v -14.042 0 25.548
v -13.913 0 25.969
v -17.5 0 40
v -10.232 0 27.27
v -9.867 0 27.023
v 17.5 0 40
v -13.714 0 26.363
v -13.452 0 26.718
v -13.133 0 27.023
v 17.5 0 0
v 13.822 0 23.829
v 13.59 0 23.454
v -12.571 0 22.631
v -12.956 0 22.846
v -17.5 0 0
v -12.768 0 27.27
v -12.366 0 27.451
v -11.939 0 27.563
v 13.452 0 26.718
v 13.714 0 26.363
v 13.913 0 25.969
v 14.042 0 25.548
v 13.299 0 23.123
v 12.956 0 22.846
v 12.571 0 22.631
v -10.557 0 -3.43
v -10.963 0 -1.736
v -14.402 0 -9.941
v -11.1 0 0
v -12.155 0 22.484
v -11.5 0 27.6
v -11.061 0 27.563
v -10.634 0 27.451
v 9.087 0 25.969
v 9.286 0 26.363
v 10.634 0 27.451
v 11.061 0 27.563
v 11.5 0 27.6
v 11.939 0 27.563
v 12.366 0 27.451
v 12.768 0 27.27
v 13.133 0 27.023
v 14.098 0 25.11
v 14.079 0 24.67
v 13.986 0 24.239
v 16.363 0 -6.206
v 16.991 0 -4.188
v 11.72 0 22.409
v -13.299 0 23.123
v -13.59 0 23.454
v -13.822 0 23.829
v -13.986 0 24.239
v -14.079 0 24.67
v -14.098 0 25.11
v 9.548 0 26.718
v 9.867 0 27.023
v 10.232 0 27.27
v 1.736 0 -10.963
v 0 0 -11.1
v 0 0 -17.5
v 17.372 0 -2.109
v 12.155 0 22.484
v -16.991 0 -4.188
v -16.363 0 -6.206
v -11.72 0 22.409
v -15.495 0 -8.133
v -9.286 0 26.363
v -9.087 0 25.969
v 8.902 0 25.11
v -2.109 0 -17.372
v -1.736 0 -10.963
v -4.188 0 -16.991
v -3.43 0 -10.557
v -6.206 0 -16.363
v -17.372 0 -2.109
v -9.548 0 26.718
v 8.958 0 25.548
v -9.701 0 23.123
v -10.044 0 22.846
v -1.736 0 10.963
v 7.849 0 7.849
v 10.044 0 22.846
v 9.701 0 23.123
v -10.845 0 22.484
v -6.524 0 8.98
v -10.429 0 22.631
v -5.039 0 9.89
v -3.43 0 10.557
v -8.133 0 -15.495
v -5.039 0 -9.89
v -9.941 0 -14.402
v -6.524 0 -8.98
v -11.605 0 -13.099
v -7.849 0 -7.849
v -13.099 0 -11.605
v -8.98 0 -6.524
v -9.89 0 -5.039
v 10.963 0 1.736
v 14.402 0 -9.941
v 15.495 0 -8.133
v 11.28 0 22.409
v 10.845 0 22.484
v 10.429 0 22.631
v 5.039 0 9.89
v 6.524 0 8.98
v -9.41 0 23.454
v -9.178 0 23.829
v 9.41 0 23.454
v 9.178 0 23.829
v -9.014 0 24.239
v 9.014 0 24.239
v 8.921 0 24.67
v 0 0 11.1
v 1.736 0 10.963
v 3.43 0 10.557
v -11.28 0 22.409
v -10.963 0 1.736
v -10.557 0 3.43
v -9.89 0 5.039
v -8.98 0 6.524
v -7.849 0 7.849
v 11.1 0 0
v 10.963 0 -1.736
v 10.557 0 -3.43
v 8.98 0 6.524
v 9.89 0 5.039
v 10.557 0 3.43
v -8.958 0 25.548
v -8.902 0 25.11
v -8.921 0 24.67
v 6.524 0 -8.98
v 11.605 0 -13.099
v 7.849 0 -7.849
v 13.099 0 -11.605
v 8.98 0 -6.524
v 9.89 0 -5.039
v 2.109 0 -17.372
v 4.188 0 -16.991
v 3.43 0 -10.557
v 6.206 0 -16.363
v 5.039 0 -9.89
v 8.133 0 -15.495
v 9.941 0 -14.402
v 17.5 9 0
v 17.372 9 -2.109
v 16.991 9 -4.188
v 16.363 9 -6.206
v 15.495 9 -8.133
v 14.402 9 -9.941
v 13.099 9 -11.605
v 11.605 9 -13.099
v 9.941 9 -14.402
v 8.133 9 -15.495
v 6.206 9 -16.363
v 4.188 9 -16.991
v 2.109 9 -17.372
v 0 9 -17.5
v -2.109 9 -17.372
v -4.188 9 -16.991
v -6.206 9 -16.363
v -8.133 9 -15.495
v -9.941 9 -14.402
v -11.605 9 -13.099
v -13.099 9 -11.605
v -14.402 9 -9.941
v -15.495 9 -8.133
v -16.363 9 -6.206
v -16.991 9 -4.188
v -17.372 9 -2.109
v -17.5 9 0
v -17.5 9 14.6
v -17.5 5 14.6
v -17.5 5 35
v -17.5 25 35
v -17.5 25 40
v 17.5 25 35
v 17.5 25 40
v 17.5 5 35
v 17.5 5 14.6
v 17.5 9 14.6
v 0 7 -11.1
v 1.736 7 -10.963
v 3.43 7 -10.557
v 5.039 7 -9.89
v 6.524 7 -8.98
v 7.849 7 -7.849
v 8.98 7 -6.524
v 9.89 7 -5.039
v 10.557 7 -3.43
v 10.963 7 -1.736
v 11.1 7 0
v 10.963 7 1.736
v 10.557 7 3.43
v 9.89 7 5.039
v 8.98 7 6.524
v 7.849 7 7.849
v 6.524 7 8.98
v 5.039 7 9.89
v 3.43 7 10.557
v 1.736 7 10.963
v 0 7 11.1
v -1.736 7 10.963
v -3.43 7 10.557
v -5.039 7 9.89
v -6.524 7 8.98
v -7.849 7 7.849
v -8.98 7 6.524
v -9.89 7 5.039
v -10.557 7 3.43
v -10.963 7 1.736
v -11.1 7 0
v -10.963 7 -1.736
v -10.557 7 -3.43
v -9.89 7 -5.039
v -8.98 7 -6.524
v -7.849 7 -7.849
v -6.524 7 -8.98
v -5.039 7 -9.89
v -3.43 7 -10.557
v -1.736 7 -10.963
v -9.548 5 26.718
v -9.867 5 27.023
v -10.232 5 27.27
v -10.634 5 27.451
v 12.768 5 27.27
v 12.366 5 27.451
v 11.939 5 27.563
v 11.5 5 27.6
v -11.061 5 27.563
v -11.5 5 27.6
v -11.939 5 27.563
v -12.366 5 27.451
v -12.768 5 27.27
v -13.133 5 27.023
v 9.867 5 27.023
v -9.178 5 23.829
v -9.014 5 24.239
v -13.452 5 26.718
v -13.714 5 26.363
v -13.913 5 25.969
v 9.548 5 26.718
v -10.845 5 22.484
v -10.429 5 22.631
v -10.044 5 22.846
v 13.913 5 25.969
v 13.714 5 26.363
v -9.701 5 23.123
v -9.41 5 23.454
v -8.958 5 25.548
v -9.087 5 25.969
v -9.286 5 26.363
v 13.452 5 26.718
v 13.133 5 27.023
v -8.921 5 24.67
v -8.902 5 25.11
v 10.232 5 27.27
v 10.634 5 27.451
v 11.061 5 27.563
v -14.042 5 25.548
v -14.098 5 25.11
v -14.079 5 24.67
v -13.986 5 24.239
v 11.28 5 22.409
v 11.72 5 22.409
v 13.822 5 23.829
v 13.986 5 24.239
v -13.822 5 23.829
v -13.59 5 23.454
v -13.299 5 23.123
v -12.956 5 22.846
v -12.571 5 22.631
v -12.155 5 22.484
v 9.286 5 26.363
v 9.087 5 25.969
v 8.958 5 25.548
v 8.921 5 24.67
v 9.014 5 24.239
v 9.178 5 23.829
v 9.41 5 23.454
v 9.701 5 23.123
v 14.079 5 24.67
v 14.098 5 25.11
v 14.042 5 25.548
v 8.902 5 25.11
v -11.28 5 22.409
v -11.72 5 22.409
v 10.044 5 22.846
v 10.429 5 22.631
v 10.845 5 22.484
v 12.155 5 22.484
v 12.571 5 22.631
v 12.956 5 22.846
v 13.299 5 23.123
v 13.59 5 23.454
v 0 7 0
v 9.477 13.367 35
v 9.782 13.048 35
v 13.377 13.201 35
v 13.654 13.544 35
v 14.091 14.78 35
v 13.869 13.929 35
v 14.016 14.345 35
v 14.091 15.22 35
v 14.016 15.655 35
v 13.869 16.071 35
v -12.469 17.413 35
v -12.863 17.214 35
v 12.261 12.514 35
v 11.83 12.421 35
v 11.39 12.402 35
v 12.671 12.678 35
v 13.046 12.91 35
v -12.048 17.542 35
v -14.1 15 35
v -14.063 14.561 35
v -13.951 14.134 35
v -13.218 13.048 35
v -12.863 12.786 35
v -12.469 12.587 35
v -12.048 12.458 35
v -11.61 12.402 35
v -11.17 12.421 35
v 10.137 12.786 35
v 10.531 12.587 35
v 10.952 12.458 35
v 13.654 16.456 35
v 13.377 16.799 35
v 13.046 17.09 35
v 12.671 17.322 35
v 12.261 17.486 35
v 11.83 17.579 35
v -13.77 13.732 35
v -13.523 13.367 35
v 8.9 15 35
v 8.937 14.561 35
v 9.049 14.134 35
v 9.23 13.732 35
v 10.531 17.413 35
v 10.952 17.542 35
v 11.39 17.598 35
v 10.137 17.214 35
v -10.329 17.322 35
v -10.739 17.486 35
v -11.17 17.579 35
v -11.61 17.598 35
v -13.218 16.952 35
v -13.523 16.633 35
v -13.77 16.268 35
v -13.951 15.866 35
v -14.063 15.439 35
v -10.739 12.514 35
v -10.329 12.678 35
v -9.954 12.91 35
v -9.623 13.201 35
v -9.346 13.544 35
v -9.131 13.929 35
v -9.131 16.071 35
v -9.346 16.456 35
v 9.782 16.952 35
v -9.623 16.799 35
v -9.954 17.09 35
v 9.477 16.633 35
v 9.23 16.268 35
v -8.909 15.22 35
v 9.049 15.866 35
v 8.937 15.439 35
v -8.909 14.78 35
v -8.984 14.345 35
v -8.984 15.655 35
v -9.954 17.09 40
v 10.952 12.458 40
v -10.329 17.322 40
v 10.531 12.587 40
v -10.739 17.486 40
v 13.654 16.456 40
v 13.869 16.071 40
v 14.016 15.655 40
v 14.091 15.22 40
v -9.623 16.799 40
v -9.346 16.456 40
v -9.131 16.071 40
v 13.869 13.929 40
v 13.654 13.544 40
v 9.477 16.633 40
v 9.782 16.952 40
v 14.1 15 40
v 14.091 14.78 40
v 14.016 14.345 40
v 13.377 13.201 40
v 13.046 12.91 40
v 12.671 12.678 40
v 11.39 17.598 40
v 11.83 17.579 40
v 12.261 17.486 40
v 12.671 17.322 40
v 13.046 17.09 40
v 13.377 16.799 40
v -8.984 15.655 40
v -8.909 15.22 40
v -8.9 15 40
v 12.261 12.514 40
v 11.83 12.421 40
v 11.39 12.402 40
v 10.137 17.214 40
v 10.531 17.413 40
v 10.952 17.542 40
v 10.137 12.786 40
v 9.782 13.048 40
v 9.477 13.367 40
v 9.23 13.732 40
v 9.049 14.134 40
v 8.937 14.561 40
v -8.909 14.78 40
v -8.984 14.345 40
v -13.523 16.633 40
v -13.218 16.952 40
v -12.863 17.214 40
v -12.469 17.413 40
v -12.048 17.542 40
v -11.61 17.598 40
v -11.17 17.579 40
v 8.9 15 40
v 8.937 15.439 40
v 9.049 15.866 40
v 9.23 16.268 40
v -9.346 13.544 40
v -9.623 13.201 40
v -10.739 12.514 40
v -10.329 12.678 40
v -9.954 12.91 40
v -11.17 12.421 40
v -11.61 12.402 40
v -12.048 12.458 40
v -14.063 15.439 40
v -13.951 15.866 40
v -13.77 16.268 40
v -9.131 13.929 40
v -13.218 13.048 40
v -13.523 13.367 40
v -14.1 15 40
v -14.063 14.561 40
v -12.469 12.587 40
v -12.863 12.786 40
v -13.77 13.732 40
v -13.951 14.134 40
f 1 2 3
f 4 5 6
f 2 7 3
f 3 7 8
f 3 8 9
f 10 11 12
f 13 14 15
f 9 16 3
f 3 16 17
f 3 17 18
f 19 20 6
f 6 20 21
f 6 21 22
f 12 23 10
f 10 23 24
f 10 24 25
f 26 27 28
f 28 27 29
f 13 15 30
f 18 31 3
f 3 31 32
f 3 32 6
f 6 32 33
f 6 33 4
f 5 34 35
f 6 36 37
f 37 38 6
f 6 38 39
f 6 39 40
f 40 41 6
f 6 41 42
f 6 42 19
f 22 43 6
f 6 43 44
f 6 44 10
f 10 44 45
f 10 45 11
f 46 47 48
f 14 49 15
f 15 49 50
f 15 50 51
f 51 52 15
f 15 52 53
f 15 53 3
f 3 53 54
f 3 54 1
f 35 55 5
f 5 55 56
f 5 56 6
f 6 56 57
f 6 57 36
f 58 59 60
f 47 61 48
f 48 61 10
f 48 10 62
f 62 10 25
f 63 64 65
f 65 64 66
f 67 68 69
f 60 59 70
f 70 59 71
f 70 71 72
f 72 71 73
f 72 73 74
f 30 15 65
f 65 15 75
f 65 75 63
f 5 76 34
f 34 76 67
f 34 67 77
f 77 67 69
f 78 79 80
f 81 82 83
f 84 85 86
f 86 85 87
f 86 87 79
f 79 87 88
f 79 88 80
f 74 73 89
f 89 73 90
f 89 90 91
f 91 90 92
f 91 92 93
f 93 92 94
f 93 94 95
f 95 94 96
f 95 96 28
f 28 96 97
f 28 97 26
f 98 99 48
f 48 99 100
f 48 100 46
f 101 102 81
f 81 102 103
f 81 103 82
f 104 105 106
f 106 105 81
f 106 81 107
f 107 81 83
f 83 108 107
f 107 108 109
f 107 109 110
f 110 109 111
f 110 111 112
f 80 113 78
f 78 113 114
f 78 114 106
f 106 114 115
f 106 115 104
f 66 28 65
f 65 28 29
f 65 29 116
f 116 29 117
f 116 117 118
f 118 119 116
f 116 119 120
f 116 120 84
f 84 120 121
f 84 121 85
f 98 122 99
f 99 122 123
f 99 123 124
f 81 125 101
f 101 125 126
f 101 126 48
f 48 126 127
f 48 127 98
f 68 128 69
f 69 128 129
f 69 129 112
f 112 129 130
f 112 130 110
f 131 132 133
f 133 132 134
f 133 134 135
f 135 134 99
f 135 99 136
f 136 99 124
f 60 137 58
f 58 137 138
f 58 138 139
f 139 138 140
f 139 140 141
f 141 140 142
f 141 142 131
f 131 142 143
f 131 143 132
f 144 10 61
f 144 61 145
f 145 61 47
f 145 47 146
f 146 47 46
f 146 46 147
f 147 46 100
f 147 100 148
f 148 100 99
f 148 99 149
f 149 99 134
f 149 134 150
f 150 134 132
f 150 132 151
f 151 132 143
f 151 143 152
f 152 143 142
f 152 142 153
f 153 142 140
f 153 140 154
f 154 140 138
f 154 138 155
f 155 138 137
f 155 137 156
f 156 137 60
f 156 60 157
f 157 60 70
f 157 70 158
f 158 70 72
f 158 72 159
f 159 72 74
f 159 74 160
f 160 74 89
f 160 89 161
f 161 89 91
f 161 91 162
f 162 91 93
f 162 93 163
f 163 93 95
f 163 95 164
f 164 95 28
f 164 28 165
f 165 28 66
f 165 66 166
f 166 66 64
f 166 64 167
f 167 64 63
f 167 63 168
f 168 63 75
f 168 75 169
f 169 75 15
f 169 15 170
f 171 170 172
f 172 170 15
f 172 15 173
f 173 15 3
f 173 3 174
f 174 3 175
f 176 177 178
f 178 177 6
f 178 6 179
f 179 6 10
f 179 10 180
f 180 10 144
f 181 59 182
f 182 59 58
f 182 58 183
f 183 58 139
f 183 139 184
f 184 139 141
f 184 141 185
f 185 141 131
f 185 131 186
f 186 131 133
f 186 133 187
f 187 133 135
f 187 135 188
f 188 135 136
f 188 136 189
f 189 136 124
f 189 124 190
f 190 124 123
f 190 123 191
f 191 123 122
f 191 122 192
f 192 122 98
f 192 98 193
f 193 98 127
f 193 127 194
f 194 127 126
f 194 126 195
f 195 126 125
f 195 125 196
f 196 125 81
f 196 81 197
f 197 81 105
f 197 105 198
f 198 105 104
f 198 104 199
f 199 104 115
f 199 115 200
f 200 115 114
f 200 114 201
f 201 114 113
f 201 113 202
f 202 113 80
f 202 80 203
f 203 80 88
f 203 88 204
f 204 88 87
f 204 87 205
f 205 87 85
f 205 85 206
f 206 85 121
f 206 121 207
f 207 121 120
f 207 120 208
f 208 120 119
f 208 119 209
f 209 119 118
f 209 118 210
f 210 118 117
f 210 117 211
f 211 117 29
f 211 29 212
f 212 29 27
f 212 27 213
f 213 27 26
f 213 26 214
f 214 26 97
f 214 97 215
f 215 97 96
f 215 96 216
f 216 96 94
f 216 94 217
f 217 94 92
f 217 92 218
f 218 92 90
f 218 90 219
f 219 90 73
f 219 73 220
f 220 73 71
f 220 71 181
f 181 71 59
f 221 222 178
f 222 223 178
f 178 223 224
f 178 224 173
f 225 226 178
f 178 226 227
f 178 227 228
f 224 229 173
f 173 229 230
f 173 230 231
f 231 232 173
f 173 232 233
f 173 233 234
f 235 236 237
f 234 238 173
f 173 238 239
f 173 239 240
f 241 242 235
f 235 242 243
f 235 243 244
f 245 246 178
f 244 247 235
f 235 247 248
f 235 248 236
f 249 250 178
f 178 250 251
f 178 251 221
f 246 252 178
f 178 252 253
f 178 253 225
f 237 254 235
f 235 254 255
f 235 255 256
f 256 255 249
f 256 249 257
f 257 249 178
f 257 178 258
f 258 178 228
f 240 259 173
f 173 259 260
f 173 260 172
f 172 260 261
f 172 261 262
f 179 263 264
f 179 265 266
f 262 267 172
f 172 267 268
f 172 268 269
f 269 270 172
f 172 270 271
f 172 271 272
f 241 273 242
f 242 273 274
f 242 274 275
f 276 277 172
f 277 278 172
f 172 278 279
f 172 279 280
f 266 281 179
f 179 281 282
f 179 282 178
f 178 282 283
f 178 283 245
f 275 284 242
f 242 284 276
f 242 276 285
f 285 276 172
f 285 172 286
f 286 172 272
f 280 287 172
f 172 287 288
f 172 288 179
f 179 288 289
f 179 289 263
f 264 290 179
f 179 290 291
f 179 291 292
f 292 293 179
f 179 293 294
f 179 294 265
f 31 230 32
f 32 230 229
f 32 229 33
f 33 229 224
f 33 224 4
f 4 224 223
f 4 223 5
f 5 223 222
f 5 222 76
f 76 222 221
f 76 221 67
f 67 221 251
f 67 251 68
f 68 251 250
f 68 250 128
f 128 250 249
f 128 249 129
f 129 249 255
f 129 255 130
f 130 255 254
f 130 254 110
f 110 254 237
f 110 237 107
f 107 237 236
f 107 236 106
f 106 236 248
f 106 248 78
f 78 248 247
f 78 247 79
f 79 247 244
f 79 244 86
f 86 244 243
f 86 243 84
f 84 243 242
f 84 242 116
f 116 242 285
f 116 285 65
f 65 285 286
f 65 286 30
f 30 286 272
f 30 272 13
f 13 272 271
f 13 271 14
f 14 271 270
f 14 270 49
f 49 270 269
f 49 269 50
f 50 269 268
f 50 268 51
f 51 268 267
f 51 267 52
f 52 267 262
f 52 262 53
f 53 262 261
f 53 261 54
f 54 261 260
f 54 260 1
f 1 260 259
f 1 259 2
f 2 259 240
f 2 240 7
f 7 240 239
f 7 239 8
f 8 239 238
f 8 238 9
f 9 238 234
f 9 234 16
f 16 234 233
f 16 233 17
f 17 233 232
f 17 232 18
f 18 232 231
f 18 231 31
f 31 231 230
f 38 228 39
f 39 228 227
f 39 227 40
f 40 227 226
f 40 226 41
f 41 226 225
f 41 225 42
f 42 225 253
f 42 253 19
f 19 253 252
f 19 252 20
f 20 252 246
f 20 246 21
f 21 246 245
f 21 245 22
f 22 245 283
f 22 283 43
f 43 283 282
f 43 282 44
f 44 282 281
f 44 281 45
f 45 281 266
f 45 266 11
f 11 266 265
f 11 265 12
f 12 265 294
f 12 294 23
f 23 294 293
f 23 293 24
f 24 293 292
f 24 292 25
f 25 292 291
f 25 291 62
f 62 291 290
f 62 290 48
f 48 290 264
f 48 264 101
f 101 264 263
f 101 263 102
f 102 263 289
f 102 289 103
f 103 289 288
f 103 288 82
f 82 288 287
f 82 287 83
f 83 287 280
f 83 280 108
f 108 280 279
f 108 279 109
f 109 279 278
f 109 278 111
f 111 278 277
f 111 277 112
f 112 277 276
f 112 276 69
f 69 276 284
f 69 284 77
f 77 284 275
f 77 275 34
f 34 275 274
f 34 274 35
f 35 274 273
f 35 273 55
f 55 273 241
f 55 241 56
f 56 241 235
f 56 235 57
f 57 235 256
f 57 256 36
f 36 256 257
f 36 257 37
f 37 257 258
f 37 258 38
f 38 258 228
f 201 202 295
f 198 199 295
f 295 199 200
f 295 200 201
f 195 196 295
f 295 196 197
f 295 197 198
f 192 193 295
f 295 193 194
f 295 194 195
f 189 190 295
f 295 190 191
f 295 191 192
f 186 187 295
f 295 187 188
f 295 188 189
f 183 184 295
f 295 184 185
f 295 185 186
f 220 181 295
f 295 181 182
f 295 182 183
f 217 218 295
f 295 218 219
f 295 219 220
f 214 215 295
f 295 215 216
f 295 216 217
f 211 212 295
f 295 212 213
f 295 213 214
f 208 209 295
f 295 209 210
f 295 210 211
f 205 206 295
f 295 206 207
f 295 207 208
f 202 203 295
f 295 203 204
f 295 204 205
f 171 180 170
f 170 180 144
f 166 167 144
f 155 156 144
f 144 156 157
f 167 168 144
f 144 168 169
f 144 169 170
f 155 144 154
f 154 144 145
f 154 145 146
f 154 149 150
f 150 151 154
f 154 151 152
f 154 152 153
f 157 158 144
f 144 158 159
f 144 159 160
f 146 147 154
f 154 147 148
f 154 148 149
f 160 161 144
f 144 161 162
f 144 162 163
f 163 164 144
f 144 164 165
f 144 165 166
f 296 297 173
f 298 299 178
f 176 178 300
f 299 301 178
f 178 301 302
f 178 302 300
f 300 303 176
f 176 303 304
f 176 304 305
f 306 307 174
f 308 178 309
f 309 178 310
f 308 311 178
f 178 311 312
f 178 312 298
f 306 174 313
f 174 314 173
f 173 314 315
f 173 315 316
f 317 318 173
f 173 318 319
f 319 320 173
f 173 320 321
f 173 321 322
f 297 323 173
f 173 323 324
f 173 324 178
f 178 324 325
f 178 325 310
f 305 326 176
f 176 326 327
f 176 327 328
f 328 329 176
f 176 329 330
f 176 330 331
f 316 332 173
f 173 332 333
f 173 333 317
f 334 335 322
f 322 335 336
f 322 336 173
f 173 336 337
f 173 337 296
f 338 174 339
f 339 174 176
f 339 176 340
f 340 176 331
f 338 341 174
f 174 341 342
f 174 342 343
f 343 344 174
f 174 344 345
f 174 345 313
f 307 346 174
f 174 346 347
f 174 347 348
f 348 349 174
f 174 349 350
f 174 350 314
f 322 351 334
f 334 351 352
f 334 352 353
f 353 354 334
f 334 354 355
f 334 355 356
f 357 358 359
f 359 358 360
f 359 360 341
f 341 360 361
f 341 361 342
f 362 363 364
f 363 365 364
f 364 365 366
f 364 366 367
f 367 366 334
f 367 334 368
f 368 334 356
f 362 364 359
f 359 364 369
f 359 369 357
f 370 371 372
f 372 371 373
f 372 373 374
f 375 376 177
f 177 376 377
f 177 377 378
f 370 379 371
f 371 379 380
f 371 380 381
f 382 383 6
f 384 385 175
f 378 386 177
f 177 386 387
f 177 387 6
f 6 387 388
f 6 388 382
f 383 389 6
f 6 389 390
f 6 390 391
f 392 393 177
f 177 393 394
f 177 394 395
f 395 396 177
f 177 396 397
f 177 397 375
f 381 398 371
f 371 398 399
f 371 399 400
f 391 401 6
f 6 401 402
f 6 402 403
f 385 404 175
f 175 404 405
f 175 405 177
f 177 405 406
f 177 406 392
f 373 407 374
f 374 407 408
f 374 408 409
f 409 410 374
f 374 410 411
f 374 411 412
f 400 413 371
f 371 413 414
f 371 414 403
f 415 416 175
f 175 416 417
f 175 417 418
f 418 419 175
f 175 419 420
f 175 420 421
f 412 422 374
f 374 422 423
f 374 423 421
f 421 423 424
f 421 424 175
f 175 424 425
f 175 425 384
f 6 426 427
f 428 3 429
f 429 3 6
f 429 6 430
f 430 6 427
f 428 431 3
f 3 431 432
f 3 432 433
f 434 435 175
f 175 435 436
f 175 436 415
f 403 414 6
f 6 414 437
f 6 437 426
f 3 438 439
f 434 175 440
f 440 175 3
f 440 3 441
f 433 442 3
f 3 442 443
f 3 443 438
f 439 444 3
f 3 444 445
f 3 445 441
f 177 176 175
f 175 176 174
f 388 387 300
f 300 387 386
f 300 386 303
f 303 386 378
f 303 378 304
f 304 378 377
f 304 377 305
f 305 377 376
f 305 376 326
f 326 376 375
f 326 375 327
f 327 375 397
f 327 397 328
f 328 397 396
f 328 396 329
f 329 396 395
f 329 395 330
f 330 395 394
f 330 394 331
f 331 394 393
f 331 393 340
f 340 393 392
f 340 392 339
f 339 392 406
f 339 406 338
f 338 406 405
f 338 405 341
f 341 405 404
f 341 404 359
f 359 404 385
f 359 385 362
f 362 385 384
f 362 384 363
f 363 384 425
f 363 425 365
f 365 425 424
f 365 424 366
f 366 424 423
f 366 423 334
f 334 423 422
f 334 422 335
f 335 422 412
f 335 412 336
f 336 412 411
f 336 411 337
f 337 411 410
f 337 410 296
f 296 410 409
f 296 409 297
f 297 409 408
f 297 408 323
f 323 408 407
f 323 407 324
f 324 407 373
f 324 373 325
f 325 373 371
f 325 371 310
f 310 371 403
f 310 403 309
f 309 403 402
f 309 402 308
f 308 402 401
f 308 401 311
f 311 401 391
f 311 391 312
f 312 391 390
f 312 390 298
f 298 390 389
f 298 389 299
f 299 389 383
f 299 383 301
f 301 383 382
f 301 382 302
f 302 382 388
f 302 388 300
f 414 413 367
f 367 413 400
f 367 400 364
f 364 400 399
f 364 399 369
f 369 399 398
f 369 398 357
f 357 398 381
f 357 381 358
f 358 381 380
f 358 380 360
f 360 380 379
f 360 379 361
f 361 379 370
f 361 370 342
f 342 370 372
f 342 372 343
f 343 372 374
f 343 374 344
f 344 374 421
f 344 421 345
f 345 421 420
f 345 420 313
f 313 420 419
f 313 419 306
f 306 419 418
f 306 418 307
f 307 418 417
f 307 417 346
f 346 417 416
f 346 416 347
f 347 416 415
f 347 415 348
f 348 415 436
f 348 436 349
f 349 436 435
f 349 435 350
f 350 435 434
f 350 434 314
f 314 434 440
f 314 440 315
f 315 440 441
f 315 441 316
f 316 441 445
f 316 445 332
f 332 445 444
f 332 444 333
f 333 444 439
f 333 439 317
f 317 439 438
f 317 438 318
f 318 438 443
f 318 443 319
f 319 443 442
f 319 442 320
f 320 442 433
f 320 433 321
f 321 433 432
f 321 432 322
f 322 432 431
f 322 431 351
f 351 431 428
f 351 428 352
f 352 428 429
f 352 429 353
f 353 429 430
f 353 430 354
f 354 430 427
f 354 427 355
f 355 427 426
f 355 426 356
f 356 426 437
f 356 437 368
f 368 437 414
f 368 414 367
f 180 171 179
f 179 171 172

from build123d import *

# Parameters (mm, degrees)
SKETCH1_R           = 11.1
BOSS_EXTRUDE1_DEPTH = 7
SKETCH4_W           = 35
SKETCH4_H           = 20
BOSS_EXTRUDE3_DEPTH = 5
SKETCH5_R           = 2.6
CUT_EXTRUDE1_DEPTH  = 8
BOSS_EXTRUDE4_DEPTH = 2
SKETCH9_W           = 35
SKETCH9_H           = 5
BOSS_EXTRUDE5_DEPTH = 25
SKETCH10_R          = 2.6
CUT_EXTRUDE2_DEPTH  = 25
SKETCH11_W          = 35
SKETCH11_H          = 0.4
CUT_EXTRUDE3_DEPTH  = 4


with BuildPart() as part:
    # Sketch1 → Boss-Extrude1 (new body)
    with BuildSketch(Plane(origin=(0, 0, 0), x_dir=(1, 0, 0), z_dir=(0, 1, 0))):
        with BuildLine():
            Line((-17.5, 0), (-17.5, -15))
            Line((-17.5, -15), (17.5, -15))
            Line((17.5, -15), (17.5, 0))
            ThreePointArc((17.5, 0), (0, 17.5), (-17.5, 0))
        make_face()
        Circle(SKETCH1_R, mode=Mode.SUBTRACT)
    extrude(amount=BOSS_EXTRUDE1_DEPTH)

    # Sketch4 → Boss-Extrude3 (add)
    with BuildSketch(Plane(origin=(0, 0, 0), x_dir=(1, 0, 0), z_dir=(0, 1, 0))):
        with Locations((0, -25)):
            Rectangle(SKETCH4_W, SKETCH4_H)
    extrude(amount=BOSS_EXTRUDE3_DEPTH)

    # Sketch5 → Cut-Extrude1 (cut, through all)
    with BuildSketch(Plane(origin=(0, 7, 0), x_dir=(1, 0, 0), z_dir=(0, 1, 0))):
        with Locations((-11.5, -25)):
            Circle(SKETCH5_R)
        with Locations((11.5, -25)):
            Circle(SKETCH5_R)
    extrude(amount=-CUT_EXTRUDE1_DEPTH, mode=Mode.SUBTRACT)

    # Sketch8 → Boss-Extrude4 (add)
    with BuildSketch(Plane(origin=(0, 7, 0), x_dir=(1, 0, 0), z_dir=(0, 1, 0))):
        with BuildLine():
            Line((-17.5, 0), (-17.5, -15))
            Line((-17.5, -15), (17.5, -15))
            Line((17.5, -15), (17.5, 0))
            ThreePointArc((17.5, 0), (0, 17.5), (-17.5, 0))
        make_face()
    extrude(amount=BOSS_EXTRUDE4_DEPTH)

    # Sketch9 → Boss-Extrude5 (add)
    with BuildSketch(Plane.XZ):
        with Locations((0, 37.5)):
            Rectangle(SKETCH9_W, SKETCH9_H)
    extrude(amount=-BOSS_EXTRUDE5_DEPTH)

    # Sketch10 → Cut-Extrude2 (cut)
    with BuildSketch(Plane(origin=(0, 0, 35), x_dir=(-1, 0, 0), z_dir=(0, 0, -1))):
        with Locations((-11.5, 15)):
            Circle(SKETCH10_R)
        with Locations((11.5, 15)):
            Circle(SKETCH10_R)
    extrude(amount=-CUT_EXTRUDE2_DEPTH, mode=Mode.SUBTRACT)

    # Sketch11 → Cut-Extrude3 (cut)
    with BuildSketch(Plane(origin=(0, 9, 0), x_dir=(1, 0, 0), z_dir=(0, 1, 0))):
        with Locations((0, -14.8)):
            Rectangle(SKETCH11_W, SKETCH11_H)
    extrude(amount=-CUT_EXTRUDE3_DEPTH, mode=Mode.SUBTRACT)


solid = part.part
